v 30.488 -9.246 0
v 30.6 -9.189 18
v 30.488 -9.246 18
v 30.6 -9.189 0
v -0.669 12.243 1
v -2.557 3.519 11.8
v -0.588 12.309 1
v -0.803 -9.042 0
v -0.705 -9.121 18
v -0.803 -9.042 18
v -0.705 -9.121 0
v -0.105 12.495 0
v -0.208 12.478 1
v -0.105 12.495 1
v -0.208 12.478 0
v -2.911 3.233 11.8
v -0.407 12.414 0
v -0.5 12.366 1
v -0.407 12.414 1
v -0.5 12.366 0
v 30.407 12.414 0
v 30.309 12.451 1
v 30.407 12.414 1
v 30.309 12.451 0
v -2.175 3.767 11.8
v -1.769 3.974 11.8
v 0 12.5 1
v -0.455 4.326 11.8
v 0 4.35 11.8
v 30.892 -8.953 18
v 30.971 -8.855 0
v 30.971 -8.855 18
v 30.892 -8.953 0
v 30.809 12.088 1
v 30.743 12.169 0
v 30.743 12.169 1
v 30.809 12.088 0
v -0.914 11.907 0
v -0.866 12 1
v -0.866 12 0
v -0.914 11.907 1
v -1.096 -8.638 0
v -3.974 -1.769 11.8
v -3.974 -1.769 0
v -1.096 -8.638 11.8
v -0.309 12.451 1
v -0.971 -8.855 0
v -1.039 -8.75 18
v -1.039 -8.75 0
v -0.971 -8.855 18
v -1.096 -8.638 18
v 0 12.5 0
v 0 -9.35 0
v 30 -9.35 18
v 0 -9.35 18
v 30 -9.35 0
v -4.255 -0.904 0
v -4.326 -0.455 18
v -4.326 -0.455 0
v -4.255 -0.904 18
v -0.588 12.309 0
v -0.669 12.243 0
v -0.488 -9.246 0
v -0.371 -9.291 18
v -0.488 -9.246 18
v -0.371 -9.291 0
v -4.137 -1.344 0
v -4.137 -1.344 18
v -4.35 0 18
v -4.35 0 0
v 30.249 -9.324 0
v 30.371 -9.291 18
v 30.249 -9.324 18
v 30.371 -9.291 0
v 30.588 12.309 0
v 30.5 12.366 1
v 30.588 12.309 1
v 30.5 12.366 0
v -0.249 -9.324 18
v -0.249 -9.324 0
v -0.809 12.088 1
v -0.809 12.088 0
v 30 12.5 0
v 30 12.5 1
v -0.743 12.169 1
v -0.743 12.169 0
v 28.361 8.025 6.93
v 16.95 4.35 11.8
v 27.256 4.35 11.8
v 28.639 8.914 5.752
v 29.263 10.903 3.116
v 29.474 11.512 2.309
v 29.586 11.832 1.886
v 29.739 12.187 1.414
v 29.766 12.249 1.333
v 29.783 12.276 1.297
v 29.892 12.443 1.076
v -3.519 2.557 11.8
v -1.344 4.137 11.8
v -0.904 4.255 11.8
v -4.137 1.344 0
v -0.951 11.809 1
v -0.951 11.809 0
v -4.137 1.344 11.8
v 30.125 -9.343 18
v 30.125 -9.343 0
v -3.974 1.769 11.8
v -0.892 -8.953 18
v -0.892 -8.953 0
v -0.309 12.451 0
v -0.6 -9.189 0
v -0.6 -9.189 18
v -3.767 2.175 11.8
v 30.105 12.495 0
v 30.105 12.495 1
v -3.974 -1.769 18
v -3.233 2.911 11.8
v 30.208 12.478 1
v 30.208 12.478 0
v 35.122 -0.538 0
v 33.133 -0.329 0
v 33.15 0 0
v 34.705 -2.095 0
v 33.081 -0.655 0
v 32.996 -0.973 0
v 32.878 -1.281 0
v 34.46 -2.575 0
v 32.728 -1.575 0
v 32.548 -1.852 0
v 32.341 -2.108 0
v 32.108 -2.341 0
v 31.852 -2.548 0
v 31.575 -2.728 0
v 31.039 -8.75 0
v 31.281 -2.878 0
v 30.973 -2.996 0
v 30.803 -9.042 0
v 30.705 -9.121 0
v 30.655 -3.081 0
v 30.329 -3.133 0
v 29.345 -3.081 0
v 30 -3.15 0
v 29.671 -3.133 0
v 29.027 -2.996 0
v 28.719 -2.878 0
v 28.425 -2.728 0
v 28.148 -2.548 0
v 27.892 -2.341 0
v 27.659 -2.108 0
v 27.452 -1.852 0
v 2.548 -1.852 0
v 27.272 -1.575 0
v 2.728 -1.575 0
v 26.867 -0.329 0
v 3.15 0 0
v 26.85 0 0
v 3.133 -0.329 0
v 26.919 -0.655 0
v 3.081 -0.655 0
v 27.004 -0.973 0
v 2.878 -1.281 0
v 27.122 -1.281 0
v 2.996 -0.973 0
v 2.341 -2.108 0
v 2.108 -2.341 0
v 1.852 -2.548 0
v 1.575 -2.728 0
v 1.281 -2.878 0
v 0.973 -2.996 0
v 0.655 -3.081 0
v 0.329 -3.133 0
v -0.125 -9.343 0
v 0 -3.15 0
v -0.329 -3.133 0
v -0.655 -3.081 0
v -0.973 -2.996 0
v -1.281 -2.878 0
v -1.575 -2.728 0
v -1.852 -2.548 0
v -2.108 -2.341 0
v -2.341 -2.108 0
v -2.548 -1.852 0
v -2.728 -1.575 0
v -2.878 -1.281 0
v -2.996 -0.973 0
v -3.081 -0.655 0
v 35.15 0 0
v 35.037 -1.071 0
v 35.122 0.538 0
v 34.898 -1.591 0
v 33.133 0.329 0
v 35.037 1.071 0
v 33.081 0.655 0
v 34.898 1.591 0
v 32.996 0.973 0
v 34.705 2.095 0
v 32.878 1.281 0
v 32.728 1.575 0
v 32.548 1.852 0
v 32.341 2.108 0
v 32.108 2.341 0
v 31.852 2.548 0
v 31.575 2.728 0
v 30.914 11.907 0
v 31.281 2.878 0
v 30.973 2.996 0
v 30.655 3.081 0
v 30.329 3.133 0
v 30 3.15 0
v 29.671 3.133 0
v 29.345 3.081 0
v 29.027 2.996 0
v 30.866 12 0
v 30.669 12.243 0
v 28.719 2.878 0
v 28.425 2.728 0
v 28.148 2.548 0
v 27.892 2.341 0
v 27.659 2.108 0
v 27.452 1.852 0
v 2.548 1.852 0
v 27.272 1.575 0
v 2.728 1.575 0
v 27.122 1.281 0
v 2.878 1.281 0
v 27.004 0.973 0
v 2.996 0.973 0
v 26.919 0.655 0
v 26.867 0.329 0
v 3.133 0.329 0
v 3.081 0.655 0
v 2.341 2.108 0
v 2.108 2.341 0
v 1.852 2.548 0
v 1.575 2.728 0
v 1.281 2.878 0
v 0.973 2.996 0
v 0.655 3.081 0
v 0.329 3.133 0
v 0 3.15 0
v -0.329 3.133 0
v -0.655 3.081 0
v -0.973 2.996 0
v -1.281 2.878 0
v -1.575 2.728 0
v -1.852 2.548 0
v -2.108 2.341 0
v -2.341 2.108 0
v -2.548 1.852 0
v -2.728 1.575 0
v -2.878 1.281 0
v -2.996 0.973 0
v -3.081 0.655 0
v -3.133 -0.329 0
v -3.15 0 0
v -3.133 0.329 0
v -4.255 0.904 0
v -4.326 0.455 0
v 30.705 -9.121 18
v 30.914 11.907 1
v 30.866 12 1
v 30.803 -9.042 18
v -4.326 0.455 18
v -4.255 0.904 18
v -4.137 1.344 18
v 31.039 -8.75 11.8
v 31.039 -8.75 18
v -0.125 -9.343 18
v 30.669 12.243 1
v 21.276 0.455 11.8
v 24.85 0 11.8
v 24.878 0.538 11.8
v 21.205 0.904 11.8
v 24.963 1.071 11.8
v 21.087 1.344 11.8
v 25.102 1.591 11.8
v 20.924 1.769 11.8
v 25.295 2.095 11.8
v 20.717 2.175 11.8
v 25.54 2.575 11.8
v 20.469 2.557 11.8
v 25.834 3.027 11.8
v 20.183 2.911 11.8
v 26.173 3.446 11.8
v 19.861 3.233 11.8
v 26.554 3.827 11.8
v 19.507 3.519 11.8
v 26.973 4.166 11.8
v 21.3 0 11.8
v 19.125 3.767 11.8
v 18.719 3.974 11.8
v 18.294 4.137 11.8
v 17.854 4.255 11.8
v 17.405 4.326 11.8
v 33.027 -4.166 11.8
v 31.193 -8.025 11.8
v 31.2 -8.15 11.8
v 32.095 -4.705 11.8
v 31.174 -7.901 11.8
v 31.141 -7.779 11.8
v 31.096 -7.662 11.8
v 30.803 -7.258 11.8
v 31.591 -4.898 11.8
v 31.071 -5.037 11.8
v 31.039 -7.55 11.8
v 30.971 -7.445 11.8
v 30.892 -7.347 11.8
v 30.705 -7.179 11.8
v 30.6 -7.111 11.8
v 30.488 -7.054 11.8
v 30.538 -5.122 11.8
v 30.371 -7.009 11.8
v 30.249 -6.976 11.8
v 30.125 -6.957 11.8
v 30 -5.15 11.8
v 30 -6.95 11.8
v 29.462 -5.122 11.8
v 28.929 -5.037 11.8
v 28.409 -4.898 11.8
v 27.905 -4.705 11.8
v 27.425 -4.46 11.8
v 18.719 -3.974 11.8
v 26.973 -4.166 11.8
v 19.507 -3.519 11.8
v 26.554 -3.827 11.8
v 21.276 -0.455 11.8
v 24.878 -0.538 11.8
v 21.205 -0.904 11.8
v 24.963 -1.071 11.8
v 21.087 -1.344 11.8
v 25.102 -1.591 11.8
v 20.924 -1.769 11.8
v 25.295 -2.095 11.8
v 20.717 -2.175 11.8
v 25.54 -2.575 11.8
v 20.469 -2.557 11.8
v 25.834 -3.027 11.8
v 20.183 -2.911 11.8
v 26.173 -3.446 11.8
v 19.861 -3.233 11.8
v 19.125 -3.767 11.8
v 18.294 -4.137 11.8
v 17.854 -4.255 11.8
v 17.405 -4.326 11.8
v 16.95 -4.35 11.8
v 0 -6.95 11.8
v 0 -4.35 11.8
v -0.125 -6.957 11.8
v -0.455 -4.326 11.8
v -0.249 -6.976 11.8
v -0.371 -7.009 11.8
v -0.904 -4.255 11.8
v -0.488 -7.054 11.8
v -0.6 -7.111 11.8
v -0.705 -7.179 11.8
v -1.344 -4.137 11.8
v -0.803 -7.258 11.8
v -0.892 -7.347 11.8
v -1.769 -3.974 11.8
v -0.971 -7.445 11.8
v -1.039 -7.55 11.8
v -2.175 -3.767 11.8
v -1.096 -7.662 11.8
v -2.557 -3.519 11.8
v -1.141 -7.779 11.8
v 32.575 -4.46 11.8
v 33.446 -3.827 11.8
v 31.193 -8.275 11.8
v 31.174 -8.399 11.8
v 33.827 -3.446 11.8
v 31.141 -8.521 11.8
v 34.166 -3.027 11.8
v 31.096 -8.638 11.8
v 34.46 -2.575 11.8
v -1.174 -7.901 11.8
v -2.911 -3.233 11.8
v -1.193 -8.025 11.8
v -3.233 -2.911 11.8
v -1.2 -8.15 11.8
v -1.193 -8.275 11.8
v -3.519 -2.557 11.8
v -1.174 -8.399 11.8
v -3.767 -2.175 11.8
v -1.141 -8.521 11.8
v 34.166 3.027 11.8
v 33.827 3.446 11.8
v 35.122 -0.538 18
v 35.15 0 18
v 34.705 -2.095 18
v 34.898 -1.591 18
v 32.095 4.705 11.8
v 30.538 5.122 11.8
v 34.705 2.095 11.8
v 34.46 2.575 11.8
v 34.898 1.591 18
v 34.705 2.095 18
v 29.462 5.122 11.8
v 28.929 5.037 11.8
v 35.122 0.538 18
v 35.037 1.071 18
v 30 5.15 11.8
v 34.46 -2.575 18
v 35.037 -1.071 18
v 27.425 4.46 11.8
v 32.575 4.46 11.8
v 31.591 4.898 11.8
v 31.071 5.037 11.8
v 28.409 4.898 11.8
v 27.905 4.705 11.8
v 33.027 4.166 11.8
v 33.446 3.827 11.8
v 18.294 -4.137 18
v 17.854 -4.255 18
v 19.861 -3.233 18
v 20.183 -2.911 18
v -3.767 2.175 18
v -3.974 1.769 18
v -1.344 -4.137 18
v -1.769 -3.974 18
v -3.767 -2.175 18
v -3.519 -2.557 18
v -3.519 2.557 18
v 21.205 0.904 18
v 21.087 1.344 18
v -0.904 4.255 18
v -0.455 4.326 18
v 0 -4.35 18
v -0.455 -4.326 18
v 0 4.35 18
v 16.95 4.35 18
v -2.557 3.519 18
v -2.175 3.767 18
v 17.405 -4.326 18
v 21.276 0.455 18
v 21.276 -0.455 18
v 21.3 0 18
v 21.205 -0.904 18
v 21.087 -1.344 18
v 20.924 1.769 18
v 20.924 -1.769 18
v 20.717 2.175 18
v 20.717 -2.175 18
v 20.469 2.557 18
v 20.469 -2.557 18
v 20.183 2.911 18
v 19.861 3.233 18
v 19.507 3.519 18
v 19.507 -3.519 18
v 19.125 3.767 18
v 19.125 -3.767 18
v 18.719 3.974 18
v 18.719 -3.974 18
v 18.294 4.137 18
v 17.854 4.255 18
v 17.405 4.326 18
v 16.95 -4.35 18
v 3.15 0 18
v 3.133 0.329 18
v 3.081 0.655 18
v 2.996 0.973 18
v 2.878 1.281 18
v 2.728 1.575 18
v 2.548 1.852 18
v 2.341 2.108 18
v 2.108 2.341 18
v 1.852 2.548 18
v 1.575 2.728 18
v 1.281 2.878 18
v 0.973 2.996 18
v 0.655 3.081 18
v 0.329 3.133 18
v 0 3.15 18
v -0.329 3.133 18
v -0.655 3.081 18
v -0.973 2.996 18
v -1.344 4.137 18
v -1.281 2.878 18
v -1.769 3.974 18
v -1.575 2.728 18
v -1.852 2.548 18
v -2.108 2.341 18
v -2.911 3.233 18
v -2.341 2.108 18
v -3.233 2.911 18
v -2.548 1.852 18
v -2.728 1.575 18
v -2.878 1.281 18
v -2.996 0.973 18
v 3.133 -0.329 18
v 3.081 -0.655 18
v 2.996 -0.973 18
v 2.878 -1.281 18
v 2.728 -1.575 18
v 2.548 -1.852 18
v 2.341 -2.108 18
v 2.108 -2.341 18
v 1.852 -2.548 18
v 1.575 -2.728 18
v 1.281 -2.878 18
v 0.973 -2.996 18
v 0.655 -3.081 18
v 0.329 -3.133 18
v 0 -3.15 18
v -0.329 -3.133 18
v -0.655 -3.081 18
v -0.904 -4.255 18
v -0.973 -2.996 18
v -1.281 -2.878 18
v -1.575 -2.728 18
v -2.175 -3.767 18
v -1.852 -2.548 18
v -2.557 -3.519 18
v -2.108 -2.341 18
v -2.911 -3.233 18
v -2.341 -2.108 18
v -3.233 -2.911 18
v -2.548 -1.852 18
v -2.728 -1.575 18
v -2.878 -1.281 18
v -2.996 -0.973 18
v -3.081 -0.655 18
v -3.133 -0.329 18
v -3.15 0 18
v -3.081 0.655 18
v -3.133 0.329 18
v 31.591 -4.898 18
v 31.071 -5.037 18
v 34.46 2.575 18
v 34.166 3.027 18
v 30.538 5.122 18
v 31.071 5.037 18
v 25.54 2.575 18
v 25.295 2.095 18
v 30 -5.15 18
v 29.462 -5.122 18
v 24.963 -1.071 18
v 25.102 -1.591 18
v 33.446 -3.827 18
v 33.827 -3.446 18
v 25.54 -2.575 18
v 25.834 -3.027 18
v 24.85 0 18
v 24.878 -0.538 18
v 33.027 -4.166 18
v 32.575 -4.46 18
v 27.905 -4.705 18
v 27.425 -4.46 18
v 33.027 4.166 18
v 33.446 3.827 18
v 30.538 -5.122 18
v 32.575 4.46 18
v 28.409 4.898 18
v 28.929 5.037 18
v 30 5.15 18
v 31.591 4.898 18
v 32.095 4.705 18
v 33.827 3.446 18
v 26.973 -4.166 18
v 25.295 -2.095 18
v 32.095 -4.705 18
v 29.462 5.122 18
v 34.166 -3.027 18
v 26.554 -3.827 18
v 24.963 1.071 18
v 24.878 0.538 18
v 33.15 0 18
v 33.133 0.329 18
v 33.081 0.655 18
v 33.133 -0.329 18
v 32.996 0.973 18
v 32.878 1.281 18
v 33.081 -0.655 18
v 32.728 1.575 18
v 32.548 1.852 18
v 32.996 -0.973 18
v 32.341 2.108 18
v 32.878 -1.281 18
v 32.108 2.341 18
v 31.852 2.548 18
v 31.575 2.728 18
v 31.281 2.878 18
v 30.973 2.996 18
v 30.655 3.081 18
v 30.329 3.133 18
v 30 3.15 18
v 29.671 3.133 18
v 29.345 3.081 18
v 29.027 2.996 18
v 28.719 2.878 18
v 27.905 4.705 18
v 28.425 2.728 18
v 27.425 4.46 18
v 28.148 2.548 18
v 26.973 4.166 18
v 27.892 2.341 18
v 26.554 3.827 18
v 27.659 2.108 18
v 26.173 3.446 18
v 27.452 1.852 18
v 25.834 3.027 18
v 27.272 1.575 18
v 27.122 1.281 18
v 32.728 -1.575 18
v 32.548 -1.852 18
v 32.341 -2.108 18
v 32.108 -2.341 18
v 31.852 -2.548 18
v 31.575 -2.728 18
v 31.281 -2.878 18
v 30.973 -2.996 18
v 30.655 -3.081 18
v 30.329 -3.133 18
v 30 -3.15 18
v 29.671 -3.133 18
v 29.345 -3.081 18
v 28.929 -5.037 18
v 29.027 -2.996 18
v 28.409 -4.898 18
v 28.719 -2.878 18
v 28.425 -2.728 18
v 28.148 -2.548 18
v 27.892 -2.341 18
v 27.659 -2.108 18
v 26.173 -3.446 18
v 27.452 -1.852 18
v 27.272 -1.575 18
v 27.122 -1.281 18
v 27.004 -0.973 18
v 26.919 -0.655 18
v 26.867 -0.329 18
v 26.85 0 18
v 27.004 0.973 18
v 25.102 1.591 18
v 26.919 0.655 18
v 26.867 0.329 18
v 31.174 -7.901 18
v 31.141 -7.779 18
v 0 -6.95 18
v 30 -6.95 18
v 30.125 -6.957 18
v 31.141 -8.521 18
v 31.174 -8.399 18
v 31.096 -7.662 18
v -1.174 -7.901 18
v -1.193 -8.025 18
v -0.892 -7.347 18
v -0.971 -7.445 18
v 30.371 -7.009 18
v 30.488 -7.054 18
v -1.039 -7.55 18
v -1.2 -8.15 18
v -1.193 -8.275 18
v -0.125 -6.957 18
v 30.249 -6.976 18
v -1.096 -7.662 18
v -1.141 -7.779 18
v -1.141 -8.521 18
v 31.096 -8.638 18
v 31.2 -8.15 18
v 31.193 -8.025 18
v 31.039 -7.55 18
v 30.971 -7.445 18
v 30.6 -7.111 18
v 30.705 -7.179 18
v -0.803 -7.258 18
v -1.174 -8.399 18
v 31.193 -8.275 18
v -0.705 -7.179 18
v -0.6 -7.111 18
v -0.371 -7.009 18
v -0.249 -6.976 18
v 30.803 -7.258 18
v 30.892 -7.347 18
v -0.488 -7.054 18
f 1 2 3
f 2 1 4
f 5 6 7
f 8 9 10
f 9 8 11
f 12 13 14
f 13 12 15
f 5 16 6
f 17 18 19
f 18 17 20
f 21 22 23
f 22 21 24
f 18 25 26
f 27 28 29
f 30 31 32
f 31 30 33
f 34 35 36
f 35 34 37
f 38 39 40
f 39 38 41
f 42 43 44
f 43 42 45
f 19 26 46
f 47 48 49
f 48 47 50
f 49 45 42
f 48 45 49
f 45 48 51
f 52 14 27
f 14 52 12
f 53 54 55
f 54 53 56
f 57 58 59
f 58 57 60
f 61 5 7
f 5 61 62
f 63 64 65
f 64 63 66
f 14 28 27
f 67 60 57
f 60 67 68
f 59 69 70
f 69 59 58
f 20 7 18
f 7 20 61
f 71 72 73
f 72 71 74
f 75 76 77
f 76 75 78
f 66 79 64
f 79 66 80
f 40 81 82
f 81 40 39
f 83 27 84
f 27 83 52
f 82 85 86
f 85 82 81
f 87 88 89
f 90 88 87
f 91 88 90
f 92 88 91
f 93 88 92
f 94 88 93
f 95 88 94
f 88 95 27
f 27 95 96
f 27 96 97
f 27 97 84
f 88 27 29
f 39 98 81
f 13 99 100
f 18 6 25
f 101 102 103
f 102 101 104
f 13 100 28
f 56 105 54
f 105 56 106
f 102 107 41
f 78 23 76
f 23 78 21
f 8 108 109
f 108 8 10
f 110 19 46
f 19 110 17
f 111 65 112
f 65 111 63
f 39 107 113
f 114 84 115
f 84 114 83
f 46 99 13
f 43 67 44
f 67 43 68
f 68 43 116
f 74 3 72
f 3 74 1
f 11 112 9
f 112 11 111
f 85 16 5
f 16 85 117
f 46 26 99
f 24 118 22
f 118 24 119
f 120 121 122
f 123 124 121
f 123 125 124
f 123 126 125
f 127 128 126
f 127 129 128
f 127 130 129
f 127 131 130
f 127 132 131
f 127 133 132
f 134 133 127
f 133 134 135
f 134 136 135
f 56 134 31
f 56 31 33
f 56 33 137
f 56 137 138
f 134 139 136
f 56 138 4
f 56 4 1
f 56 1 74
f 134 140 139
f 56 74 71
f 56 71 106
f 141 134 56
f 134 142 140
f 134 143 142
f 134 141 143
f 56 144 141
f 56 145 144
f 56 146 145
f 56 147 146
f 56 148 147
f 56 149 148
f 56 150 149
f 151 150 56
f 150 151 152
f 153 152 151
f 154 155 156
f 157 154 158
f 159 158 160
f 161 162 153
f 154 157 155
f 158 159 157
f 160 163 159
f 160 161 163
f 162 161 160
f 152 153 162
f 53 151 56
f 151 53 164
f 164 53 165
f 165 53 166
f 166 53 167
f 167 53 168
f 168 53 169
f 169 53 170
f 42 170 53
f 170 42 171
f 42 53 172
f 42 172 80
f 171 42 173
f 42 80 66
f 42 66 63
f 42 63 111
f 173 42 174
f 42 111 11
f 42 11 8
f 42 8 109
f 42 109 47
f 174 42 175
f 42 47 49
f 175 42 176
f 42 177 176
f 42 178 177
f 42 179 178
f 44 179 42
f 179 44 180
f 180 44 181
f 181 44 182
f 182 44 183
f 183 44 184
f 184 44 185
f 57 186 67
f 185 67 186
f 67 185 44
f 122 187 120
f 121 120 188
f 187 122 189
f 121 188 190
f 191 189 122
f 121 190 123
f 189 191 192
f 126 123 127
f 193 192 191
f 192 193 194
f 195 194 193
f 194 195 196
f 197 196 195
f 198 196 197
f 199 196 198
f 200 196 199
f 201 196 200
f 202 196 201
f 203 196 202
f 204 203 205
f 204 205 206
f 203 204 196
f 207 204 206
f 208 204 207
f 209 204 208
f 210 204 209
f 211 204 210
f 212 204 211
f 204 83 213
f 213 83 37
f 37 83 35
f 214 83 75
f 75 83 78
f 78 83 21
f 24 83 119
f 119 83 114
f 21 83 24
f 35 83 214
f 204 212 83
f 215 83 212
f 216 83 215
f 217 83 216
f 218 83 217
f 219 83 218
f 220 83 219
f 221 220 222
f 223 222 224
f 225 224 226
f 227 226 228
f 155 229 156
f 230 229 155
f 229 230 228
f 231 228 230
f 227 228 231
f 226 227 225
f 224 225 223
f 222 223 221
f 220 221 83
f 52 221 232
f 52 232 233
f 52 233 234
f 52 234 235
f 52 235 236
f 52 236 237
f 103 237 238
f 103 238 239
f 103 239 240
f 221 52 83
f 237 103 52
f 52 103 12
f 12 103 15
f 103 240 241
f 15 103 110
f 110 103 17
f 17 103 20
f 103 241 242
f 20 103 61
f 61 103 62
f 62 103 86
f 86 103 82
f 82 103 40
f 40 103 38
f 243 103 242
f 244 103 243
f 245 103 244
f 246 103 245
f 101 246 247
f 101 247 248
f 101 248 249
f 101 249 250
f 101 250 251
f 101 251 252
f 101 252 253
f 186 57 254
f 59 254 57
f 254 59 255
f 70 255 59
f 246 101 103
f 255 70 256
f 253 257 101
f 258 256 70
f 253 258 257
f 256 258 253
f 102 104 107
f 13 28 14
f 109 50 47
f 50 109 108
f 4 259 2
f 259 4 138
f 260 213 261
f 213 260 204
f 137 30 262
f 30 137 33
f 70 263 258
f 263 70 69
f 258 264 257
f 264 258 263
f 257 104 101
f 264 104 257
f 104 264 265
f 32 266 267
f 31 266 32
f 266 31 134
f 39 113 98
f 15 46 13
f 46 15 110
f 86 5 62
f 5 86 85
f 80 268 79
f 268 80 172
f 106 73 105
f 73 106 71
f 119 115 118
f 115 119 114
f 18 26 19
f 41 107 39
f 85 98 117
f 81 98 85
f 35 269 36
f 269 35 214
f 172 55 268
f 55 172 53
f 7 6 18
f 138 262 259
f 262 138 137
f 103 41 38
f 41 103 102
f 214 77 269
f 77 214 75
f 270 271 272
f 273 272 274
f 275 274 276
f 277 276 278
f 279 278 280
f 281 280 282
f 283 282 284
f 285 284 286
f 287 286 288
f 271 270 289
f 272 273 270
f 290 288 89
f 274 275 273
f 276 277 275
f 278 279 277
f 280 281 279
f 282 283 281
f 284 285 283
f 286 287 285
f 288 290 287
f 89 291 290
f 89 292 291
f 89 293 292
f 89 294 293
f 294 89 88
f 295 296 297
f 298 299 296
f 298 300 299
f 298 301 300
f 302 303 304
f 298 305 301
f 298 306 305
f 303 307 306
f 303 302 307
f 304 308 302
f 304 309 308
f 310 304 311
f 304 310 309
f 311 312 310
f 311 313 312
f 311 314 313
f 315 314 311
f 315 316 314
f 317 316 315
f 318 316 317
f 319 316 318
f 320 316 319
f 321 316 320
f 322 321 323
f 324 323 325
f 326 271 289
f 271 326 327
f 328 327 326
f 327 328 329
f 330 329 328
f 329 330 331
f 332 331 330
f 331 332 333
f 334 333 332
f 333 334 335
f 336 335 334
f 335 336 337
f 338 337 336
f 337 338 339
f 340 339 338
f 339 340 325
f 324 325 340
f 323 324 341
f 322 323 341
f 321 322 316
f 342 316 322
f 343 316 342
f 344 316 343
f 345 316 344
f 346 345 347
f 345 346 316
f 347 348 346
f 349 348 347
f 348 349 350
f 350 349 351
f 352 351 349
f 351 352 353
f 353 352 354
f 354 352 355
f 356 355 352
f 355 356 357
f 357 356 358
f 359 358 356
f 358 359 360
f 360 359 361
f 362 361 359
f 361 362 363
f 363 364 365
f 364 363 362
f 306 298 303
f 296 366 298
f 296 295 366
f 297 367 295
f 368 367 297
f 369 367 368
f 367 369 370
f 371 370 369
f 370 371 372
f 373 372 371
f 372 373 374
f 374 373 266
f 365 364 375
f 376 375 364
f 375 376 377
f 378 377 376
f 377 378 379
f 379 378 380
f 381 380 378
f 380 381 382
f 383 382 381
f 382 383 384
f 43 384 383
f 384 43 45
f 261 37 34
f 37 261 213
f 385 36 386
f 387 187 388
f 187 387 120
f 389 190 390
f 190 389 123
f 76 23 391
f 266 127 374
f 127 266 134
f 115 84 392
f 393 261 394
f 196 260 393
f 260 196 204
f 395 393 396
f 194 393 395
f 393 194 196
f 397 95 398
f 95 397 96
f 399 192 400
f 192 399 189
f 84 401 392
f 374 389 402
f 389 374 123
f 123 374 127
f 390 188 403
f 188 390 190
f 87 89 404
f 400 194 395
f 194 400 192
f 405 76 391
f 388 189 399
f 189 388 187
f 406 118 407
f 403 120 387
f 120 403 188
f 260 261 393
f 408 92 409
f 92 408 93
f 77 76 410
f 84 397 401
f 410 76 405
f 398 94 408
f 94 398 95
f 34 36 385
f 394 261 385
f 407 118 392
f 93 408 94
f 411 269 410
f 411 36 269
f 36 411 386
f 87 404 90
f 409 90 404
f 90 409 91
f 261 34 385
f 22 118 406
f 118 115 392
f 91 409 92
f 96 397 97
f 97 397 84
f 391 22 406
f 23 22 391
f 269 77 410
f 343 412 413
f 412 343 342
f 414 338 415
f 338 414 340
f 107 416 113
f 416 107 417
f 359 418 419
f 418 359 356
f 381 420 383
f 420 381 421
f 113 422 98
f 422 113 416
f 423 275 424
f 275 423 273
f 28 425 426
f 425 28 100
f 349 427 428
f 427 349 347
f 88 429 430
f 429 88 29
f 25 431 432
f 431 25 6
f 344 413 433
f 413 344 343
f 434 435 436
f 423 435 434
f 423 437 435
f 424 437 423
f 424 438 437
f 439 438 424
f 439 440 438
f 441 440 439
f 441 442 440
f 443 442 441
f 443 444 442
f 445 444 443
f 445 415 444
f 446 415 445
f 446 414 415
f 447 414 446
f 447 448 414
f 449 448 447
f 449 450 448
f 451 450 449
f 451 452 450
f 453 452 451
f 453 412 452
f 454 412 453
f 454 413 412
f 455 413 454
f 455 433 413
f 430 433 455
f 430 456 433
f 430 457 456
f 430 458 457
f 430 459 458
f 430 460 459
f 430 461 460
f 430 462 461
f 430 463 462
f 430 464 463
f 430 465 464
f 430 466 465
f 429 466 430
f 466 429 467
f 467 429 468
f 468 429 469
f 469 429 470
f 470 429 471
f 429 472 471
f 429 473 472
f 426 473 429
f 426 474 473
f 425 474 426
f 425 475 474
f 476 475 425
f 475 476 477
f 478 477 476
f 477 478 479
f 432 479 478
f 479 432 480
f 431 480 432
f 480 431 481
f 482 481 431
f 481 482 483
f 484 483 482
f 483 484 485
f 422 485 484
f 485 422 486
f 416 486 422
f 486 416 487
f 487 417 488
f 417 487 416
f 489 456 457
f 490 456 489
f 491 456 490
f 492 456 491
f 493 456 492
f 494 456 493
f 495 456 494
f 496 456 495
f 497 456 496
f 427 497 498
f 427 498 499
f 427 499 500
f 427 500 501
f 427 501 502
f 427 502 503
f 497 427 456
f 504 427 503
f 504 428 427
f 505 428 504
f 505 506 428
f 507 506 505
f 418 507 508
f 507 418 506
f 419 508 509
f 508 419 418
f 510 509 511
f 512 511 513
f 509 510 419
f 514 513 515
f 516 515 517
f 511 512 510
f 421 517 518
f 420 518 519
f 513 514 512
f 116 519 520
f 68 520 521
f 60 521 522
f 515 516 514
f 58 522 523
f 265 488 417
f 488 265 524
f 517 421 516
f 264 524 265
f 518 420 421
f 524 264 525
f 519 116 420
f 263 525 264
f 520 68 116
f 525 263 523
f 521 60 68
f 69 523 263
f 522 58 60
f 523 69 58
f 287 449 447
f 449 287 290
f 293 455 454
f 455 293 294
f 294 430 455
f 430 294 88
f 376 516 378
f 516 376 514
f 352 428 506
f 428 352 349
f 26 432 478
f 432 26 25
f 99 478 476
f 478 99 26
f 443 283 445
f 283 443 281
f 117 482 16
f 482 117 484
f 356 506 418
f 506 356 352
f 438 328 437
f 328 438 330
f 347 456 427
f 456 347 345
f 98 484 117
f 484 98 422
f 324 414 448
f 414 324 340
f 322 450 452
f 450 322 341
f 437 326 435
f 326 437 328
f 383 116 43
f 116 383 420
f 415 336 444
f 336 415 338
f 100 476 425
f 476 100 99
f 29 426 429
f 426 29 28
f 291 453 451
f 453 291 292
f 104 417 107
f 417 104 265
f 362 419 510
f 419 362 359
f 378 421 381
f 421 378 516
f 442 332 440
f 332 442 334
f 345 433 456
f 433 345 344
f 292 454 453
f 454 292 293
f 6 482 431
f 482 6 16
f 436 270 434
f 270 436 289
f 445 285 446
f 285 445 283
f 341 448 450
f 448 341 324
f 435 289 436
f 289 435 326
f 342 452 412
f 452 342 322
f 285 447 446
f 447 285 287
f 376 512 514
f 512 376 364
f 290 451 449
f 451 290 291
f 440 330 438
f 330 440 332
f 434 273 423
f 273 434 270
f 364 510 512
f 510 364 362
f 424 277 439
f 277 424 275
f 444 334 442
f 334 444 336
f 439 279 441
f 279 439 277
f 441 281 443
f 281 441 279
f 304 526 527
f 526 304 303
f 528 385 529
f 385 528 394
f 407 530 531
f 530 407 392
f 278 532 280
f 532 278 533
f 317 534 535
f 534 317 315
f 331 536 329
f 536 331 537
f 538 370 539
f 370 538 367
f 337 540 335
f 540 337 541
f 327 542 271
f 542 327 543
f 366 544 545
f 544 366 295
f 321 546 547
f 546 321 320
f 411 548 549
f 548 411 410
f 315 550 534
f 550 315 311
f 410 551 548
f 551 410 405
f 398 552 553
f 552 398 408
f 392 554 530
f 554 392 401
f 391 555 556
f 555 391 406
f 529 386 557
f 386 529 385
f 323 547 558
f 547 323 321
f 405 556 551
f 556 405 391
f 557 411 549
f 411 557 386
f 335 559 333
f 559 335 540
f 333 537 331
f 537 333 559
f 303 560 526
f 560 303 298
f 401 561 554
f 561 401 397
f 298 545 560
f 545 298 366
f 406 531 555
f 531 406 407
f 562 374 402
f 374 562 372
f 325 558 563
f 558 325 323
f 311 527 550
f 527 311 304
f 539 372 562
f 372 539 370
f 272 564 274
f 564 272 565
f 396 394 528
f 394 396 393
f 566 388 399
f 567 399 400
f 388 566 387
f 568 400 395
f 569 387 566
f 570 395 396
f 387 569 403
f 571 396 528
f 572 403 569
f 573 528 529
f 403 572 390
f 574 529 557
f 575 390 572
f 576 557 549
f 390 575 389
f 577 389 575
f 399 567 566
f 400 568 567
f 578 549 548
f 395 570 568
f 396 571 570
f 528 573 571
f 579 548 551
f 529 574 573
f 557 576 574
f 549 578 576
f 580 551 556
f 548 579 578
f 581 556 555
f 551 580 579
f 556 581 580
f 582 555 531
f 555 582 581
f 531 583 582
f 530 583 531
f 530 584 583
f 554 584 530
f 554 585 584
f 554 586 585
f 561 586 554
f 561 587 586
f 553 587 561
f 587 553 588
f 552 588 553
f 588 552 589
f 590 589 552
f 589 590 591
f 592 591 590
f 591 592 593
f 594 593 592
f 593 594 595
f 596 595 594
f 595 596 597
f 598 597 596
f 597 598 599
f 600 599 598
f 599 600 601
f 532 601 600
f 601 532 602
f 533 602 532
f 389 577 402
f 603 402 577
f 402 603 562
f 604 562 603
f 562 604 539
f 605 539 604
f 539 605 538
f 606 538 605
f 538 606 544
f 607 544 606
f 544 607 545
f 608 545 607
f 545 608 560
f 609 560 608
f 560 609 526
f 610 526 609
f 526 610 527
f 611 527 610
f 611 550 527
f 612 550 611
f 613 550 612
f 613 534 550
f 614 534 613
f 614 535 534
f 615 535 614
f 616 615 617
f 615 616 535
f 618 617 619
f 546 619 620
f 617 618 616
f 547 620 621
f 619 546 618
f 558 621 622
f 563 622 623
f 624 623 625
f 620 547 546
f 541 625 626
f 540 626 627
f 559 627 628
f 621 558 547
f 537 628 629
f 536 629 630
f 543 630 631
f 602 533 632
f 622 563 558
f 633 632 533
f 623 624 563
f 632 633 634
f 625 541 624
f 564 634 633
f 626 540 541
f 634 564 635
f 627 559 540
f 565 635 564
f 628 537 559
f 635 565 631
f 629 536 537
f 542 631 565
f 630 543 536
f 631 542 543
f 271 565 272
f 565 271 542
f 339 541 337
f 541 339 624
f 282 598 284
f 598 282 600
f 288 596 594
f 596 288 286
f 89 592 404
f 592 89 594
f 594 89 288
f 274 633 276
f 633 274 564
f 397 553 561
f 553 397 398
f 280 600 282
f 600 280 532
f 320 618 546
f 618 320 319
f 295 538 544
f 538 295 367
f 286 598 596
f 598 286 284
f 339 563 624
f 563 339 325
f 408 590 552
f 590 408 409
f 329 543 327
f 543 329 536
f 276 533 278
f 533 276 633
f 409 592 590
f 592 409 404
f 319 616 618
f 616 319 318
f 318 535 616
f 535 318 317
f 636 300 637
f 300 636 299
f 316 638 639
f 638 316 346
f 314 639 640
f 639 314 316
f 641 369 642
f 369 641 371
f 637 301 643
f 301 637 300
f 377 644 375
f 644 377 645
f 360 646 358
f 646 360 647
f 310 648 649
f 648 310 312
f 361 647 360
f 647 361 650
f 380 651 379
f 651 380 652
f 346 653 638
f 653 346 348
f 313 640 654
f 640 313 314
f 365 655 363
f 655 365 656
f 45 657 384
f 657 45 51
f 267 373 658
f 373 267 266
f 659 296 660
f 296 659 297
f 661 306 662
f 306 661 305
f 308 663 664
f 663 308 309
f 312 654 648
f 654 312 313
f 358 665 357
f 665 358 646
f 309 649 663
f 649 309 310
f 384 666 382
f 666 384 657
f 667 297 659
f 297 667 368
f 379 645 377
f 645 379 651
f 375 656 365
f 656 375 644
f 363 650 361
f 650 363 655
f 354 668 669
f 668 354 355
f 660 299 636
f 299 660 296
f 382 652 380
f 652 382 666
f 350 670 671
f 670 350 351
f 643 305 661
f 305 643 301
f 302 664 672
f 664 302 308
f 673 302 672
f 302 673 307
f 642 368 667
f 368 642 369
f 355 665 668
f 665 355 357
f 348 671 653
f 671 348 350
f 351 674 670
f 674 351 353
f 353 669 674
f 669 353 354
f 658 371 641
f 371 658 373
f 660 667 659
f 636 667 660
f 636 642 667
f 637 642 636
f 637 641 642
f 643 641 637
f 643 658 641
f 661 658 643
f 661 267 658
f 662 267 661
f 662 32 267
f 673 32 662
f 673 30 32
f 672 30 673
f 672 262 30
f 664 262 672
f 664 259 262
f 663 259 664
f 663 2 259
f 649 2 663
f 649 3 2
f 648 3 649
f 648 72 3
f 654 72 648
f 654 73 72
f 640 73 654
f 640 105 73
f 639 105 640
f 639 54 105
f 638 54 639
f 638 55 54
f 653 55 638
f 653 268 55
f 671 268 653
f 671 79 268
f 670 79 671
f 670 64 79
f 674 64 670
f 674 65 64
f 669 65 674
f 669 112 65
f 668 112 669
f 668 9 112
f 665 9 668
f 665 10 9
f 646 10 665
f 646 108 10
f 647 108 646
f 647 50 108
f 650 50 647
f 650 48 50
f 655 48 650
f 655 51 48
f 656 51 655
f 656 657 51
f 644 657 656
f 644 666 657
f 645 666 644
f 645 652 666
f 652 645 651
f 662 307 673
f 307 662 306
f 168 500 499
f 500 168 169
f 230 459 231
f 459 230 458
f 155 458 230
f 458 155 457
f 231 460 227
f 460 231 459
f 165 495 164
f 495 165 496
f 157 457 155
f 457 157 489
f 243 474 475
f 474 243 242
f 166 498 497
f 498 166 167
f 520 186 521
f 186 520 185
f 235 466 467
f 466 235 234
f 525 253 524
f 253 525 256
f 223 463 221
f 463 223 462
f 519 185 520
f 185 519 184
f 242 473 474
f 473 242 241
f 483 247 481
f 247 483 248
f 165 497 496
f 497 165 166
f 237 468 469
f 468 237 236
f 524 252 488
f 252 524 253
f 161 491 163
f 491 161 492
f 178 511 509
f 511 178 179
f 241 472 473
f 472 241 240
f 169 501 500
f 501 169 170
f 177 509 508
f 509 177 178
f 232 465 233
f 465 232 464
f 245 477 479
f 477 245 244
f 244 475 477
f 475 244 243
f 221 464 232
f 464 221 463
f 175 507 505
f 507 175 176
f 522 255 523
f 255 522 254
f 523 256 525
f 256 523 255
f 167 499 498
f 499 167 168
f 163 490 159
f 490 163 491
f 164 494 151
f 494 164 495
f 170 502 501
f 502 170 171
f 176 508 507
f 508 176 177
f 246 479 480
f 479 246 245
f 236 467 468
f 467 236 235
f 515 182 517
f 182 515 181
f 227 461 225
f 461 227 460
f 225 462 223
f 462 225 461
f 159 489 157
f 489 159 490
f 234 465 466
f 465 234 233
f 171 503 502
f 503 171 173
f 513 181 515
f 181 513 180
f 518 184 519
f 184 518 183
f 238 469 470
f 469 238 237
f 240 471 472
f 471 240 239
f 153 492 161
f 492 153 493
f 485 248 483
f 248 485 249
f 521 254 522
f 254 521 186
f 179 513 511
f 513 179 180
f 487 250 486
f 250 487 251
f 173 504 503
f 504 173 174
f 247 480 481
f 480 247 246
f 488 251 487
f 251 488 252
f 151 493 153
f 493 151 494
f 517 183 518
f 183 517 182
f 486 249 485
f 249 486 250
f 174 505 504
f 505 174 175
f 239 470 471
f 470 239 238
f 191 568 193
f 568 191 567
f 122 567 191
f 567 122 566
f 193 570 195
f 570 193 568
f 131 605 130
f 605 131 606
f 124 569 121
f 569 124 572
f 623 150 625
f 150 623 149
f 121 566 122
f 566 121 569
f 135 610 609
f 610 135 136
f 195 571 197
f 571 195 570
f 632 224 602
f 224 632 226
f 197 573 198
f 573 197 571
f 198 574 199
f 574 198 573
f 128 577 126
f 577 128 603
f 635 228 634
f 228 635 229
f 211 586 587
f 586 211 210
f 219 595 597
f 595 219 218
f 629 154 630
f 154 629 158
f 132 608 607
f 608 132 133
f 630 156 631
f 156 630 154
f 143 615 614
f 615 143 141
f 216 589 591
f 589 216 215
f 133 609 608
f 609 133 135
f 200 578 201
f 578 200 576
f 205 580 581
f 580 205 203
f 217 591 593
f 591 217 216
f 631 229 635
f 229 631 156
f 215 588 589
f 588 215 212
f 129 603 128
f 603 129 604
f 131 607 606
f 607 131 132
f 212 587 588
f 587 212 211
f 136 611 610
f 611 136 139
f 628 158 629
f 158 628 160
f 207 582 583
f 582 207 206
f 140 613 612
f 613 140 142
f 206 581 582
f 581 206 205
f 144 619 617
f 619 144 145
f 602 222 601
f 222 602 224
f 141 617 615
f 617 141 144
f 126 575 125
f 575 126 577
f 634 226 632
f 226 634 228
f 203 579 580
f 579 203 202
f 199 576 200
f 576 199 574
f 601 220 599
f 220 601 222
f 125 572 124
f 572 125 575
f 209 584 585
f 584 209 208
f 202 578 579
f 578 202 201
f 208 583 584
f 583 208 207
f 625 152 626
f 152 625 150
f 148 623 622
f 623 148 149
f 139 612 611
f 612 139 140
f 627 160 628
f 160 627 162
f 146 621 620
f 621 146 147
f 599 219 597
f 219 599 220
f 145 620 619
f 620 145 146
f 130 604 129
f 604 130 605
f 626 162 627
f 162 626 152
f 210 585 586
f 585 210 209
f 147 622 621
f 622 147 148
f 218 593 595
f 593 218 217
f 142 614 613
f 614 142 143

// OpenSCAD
// The arms are designed to be spaced 18mm apart, using 25mm wide aluminium flat bar.
// This fits a 6mm belt with 6mm space between them.
// For that, print 4 blocks with the following dimensions:
// belt_above_surface = 11.8;
// side_support_offset = 12.5;
//
// For a 15mm lift from the sled surface (2.5mm thick alu bar plus 12.5mm clearance for the bolts):
//
// print 2 of these:
//
// Also print 2 of these:
// Uncomment the mirroring
// belt_above_surface = 27; // 15mm plus belt height plus spacing inbetween
// side_support_offset = 30;
//
//
ooze = 0.15; // My machine has a wall ooze (extra width) of about 0.15mm.
nozzle = 0.4; // Extrusion nozzle width
m6 = 3 + ooze; // radius of holes.
peg = m6+3*nozzle; // Radius of pegs. We want the walls to be x times extrusion width
mounting_distance = 30; // Center to center distance between holes
belt_above_surface = 11.8; // Height of belt above surface.
side_support_offset = 12.5; // side support offset
lock_tab_r = 1.2; // Thickness of the locking strip

$fn=60;
belt_width = 6.2; // Belt width
belt_thickness = 1.5; // Belt thickness
belt_thickness_meshed = 2.3; // Thickness of 2 intermeshing belts
min_radius = min(1, belt_above_surface);
cyl_height = belt_above_surface + belt_width;
lock_tab_offset = peg + belt_thickness_meshed + lock_tab_r + 2*ooze;
peg_2 = peg+belt_thickness_meshed-belt_thickness; // The second peg is slightly bigger.

module support(peg) {
hull() {
    cylinder(r=peg, h=belt_above_surface);
    translate([0,side_support_offset - min_radius, 0]) cylinder(r=min_radius, h=min_radius);
    translate([0,- lock_tab_offset, 0]) cylinder(r=lock_tab_r, h=belt_above_surface);
}
}

module base() {
    // The support structure
    hull () {
        support(peg);
        translate([mounting_distance,0, 0]) support(peg); 
    }

    // The second peg is bigger.
    translate([mounting_distance,0, 0]) support(peg_2); 

    // The belt mesh support
    hull () {
        cylinder(r=peg, h=cyl_height);
        translate([mounting_distance - 3*peg, 0,0]) cylinder(r=peg, h=cyl_height);
    }
    translate([mounting_distance,0,0]) cylinder(r=peg_2, h=belt_above_surface + belt_width);
    hull() {
        translate([0,0 - lock_tab_offset, 0]) cylinder(r=lock_tab_r, h=cyl_height);
        translate([mounting_distance,0 - lock_tab_offset, 0]) cylinder(r=lock_tab_r, h=cyl_height);
    }
}

// Uncomment the mirror to get a mirror image of the mounting.
//mirror([0,1,0]) {
difference() {
    base();
    cylinder(r=m6, h=cyl_height);
    translate([mounting_distance,0,0]) cylinder(r=m6, h=cyl_height);
}
//}
